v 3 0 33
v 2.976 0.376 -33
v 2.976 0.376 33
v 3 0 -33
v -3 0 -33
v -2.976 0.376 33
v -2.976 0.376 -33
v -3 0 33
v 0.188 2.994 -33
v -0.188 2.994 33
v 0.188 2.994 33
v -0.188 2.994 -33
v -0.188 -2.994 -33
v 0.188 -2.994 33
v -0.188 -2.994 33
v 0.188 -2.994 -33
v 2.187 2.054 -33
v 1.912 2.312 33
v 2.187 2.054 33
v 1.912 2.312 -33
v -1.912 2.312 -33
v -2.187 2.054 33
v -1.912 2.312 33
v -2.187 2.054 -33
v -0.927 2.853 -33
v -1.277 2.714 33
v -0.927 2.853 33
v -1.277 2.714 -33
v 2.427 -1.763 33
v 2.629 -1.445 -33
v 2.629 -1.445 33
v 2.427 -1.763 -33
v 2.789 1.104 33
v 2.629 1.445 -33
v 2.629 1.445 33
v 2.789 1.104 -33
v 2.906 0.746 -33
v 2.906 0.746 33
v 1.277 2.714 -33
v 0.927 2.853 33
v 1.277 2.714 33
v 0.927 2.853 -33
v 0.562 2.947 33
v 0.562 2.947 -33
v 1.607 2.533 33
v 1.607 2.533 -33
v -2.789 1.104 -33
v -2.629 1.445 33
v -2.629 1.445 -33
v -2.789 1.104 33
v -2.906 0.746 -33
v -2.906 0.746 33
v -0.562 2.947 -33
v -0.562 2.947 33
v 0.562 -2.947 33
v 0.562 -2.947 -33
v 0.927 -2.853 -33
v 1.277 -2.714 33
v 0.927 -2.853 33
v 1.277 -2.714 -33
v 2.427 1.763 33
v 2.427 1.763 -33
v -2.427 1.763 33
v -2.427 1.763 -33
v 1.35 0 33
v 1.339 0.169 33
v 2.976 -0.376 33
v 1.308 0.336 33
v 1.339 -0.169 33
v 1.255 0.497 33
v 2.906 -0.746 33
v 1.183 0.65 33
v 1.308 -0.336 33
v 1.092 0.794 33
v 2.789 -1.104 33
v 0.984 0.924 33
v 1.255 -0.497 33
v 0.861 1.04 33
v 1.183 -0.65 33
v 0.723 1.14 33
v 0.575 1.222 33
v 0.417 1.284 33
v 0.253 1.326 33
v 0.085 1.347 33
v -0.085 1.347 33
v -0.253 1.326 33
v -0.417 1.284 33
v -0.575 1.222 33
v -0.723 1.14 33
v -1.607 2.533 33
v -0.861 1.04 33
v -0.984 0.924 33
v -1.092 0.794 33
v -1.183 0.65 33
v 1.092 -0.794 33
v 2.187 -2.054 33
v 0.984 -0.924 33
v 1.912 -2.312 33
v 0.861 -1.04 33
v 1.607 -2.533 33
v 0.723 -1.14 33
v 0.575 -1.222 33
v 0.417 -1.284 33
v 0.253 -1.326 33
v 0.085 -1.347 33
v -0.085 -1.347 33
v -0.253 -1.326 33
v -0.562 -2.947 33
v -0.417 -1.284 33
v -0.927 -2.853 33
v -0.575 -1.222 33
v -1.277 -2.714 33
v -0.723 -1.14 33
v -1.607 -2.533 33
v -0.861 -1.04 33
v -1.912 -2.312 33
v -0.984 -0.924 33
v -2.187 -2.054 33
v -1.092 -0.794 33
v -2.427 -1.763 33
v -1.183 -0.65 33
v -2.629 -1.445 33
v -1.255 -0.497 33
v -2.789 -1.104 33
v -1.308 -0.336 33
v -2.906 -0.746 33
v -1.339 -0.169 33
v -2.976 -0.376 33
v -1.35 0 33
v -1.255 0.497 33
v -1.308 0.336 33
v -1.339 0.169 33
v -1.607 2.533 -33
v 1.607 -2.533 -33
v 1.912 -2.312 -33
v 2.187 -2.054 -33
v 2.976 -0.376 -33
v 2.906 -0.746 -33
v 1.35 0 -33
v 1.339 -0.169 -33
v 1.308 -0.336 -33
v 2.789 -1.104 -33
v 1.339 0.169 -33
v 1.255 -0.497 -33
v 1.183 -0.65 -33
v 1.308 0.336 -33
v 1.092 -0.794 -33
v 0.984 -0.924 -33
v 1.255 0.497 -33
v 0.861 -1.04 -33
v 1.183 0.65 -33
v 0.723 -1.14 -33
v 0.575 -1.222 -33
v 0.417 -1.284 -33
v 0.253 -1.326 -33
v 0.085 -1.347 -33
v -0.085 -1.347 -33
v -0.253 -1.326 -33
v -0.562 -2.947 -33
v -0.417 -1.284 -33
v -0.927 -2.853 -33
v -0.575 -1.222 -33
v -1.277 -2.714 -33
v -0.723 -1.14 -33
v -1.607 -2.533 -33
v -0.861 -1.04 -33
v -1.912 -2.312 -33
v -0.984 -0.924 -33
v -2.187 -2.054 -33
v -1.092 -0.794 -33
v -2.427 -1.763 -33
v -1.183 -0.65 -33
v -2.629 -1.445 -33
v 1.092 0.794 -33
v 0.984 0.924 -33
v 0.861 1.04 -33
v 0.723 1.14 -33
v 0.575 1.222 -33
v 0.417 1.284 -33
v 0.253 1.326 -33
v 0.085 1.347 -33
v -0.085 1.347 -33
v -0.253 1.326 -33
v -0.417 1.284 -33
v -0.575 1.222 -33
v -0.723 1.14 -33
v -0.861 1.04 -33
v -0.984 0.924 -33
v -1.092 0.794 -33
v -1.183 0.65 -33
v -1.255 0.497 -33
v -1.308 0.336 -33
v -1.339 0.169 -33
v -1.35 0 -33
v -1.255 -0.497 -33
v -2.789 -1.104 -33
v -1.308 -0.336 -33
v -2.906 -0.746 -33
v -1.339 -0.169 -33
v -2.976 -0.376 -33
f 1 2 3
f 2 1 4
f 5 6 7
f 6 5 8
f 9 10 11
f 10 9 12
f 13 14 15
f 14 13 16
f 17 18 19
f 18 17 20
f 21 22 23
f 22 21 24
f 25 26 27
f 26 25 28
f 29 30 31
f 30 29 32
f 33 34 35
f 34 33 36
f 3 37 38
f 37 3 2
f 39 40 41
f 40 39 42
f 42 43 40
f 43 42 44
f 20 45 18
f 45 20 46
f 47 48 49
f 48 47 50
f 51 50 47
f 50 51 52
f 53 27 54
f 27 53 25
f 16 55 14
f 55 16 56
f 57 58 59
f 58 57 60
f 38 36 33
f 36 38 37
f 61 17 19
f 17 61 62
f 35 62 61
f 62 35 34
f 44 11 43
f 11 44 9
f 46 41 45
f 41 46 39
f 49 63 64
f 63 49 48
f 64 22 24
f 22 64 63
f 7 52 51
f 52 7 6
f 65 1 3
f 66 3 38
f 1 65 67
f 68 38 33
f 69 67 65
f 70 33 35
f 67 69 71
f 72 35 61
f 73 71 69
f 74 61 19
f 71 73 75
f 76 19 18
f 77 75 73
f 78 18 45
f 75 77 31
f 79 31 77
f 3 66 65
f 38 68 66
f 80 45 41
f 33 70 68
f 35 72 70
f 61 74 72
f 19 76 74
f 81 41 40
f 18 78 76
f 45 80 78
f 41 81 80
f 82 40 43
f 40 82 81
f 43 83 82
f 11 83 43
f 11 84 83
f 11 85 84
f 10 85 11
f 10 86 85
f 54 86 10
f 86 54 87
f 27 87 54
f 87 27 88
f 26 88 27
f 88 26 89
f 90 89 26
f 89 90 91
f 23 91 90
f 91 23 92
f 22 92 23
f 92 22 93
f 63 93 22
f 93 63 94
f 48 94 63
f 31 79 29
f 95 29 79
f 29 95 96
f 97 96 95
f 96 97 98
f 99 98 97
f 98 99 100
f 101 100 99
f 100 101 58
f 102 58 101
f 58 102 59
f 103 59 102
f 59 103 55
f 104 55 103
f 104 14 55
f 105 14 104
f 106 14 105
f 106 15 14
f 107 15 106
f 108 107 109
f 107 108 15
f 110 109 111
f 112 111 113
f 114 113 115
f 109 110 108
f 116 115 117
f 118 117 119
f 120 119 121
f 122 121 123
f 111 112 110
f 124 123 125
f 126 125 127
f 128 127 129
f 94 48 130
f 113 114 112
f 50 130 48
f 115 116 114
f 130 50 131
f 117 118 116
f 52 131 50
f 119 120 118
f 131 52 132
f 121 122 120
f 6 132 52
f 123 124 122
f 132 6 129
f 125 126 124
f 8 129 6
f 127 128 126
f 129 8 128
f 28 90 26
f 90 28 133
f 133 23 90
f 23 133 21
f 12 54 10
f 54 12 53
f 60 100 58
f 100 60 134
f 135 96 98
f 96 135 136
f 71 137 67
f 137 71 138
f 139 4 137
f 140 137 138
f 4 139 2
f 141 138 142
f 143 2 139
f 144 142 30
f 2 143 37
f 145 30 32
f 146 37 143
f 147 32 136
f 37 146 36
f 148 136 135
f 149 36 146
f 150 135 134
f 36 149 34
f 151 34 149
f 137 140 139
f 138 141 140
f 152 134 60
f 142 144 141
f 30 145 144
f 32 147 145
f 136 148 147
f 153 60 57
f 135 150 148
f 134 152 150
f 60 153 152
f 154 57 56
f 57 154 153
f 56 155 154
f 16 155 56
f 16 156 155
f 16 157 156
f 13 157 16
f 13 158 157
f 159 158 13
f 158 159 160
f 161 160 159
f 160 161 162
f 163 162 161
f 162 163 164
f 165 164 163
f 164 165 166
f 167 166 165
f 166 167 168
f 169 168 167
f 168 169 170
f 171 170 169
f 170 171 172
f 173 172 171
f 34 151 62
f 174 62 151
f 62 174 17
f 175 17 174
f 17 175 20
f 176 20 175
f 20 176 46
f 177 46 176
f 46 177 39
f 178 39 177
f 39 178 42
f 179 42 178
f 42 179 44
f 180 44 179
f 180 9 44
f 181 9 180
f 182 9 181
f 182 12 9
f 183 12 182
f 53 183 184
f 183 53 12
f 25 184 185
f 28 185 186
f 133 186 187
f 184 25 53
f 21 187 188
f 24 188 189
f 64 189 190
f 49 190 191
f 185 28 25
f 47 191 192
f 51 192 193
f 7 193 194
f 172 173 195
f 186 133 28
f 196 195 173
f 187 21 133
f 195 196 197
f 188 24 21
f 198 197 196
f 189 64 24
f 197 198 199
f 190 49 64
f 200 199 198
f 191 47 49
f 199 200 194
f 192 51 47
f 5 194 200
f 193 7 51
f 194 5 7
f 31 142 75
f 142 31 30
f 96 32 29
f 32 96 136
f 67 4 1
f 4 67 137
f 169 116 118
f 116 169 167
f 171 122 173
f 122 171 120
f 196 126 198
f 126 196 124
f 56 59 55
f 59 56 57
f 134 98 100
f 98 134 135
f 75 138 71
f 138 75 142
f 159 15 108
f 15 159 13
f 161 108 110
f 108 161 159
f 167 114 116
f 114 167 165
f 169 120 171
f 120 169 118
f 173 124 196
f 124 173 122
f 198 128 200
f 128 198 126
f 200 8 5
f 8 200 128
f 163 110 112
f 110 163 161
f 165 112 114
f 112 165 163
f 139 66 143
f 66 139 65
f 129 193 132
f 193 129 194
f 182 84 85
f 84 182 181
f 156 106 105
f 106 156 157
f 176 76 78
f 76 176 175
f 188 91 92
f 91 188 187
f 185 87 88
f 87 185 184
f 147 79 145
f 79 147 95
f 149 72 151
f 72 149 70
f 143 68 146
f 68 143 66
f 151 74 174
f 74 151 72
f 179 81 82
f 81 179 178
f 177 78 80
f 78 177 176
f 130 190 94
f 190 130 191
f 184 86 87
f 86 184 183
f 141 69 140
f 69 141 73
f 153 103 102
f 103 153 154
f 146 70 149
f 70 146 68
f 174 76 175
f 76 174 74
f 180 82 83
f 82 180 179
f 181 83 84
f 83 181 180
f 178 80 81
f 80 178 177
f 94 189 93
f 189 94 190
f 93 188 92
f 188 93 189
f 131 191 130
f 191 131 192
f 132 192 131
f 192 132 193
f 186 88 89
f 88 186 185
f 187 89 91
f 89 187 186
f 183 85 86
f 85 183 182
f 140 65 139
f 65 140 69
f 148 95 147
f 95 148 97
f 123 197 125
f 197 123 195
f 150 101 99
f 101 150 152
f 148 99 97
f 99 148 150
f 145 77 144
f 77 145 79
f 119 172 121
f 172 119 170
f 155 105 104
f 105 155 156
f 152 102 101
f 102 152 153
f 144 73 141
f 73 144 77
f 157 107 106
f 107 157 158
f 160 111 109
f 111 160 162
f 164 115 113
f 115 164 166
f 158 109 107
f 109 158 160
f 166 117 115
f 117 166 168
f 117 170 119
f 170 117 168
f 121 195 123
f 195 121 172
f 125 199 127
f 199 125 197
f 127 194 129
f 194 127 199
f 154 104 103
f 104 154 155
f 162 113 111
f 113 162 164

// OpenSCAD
$fn = 50;


difference() {
	union() {
		translate(v = [0, 0, -33.0000000000]) {
			cylinder(h = 66, r = 3.0000000000);
		}
	}
	union() {
		translate(v = [0, 0, -100.0000000000]) {
			cylinder(h = 200, r = 1.3500000000);
		}
	}
}
